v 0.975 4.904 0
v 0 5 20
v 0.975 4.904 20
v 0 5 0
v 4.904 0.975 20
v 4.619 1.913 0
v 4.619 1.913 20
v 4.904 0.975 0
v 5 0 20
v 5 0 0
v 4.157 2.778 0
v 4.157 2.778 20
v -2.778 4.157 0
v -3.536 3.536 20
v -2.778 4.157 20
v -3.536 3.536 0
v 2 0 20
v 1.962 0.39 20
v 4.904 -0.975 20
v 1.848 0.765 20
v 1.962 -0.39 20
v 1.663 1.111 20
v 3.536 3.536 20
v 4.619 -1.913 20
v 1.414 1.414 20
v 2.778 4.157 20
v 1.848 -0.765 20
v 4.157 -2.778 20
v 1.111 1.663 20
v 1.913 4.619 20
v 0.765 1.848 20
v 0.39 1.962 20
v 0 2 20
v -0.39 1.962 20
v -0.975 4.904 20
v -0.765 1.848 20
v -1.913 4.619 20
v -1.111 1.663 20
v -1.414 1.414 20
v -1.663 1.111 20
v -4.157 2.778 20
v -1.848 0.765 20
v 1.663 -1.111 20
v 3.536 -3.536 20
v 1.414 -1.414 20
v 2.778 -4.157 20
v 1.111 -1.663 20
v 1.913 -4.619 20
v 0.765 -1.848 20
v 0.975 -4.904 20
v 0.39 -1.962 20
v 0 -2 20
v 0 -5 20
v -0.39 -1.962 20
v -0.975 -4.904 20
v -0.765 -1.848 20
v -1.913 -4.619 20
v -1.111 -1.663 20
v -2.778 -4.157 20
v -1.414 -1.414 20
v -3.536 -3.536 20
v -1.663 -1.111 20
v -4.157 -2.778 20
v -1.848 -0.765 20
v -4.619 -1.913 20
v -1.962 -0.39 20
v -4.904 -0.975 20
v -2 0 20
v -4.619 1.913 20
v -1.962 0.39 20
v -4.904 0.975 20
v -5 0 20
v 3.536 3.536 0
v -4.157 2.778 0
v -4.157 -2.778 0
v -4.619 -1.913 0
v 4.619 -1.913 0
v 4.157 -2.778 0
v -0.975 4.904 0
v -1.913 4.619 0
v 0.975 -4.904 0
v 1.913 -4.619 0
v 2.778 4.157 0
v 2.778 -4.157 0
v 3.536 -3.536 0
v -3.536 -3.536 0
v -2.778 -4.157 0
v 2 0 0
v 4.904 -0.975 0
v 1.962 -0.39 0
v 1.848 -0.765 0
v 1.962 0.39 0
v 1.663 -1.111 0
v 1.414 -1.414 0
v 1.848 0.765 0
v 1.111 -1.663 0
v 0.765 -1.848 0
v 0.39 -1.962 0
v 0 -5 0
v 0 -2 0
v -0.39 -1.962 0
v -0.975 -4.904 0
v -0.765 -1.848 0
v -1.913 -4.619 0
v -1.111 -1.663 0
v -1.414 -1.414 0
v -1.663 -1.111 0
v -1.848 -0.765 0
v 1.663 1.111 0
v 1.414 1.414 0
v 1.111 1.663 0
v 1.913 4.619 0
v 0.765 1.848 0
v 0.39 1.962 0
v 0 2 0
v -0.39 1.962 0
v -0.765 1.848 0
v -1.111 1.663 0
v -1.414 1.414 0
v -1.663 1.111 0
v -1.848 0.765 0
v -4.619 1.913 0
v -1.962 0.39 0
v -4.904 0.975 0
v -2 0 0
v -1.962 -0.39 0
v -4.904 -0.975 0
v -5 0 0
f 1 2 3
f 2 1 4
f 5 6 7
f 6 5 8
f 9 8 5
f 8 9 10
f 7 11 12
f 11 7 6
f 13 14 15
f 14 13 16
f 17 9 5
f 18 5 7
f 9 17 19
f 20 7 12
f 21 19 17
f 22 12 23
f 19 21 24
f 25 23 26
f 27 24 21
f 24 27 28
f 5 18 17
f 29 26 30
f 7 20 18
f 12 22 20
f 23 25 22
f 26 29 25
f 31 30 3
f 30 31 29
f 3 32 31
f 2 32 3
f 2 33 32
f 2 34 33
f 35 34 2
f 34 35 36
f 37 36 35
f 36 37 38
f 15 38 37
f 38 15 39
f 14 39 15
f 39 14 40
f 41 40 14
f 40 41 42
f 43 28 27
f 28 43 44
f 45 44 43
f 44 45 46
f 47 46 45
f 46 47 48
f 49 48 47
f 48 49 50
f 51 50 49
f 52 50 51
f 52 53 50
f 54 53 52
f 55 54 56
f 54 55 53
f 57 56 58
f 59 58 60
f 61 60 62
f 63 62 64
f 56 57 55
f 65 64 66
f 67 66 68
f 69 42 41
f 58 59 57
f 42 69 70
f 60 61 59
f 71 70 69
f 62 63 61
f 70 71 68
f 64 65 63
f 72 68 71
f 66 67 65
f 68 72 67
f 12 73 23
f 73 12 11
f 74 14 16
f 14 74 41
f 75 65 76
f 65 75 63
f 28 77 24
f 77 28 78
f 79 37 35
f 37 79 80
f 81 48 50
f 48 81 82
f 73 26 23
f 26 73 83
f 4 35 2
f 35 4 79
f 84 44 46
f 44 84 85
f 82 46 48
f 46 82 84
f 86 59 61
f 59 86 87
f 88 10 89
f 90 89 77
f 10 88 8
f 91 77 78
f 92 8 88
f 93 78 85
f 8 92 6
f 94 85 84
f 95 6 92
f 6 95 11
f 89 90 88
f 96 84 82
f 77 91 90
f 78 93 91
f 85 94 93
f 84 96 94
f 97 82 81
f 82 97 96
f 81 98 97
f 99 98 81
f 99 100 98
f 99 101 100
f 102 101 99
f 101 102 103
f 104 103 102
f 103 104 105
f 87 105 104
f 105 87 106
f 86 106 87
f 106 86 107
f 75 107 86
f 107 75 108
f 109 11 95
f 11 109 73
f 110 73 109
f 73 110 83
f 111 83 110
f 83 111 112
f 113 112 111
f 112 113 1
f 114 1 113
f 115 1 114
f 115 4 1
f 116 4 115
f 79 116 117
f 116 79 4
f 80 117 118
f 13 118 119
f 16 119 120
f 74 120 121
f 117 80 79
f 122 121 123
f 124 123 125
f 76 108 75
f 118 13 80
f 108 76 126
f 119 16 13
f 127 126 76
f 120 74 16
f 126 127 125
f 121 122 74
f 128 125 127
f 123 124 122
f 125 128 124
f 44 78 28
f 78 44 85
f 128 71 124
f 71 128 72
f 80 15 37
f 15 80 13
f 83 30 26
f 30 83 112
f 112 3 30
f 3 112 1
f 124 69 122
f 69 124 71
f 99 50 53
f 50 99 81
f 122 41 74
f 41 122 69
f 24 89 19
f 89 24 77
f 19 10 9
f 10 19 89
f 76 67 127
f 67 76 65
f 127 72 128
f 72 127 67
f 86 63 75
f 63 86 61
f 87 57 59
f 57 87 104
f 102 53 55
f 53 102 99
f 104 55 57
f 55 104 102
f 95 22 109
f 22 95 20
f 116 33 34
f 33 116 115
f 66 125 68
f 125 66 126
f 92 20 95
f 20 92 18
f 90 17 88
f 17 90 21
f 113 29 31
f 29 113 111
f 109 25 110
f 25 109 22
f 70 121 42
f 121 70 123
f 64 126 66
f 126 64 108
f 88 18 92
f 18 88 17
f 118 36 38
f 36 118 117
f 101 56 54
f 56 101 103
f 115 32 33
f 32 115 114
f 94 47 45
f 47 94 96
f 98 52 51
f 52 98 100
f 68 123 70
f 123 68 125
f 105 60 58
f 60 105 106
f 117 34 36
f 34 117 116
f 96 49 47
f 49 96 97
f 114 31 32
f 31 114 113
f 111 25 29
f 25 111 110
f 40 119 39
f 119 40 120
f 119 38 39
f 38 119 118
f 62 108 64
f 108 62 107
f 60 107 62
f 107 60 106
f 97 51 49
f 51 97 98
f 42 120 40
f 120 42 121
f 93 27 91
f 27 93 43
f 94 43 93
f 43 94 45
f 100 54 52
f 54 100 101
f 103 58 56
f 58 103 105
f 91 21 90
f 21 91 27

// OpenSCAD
$fn = 32;

module hollowed_cylinder(h, r1, r2, thickness) {
  difference() {
    cylinder(h = h, r = r1);
    translate([0, 0, -thickness/2])
      cylinder(h = h + thickness, r = r2);
  }
}

hollowed_cylinder(h = 20, r1 = 5, r2 = 2, thickness = 1);
